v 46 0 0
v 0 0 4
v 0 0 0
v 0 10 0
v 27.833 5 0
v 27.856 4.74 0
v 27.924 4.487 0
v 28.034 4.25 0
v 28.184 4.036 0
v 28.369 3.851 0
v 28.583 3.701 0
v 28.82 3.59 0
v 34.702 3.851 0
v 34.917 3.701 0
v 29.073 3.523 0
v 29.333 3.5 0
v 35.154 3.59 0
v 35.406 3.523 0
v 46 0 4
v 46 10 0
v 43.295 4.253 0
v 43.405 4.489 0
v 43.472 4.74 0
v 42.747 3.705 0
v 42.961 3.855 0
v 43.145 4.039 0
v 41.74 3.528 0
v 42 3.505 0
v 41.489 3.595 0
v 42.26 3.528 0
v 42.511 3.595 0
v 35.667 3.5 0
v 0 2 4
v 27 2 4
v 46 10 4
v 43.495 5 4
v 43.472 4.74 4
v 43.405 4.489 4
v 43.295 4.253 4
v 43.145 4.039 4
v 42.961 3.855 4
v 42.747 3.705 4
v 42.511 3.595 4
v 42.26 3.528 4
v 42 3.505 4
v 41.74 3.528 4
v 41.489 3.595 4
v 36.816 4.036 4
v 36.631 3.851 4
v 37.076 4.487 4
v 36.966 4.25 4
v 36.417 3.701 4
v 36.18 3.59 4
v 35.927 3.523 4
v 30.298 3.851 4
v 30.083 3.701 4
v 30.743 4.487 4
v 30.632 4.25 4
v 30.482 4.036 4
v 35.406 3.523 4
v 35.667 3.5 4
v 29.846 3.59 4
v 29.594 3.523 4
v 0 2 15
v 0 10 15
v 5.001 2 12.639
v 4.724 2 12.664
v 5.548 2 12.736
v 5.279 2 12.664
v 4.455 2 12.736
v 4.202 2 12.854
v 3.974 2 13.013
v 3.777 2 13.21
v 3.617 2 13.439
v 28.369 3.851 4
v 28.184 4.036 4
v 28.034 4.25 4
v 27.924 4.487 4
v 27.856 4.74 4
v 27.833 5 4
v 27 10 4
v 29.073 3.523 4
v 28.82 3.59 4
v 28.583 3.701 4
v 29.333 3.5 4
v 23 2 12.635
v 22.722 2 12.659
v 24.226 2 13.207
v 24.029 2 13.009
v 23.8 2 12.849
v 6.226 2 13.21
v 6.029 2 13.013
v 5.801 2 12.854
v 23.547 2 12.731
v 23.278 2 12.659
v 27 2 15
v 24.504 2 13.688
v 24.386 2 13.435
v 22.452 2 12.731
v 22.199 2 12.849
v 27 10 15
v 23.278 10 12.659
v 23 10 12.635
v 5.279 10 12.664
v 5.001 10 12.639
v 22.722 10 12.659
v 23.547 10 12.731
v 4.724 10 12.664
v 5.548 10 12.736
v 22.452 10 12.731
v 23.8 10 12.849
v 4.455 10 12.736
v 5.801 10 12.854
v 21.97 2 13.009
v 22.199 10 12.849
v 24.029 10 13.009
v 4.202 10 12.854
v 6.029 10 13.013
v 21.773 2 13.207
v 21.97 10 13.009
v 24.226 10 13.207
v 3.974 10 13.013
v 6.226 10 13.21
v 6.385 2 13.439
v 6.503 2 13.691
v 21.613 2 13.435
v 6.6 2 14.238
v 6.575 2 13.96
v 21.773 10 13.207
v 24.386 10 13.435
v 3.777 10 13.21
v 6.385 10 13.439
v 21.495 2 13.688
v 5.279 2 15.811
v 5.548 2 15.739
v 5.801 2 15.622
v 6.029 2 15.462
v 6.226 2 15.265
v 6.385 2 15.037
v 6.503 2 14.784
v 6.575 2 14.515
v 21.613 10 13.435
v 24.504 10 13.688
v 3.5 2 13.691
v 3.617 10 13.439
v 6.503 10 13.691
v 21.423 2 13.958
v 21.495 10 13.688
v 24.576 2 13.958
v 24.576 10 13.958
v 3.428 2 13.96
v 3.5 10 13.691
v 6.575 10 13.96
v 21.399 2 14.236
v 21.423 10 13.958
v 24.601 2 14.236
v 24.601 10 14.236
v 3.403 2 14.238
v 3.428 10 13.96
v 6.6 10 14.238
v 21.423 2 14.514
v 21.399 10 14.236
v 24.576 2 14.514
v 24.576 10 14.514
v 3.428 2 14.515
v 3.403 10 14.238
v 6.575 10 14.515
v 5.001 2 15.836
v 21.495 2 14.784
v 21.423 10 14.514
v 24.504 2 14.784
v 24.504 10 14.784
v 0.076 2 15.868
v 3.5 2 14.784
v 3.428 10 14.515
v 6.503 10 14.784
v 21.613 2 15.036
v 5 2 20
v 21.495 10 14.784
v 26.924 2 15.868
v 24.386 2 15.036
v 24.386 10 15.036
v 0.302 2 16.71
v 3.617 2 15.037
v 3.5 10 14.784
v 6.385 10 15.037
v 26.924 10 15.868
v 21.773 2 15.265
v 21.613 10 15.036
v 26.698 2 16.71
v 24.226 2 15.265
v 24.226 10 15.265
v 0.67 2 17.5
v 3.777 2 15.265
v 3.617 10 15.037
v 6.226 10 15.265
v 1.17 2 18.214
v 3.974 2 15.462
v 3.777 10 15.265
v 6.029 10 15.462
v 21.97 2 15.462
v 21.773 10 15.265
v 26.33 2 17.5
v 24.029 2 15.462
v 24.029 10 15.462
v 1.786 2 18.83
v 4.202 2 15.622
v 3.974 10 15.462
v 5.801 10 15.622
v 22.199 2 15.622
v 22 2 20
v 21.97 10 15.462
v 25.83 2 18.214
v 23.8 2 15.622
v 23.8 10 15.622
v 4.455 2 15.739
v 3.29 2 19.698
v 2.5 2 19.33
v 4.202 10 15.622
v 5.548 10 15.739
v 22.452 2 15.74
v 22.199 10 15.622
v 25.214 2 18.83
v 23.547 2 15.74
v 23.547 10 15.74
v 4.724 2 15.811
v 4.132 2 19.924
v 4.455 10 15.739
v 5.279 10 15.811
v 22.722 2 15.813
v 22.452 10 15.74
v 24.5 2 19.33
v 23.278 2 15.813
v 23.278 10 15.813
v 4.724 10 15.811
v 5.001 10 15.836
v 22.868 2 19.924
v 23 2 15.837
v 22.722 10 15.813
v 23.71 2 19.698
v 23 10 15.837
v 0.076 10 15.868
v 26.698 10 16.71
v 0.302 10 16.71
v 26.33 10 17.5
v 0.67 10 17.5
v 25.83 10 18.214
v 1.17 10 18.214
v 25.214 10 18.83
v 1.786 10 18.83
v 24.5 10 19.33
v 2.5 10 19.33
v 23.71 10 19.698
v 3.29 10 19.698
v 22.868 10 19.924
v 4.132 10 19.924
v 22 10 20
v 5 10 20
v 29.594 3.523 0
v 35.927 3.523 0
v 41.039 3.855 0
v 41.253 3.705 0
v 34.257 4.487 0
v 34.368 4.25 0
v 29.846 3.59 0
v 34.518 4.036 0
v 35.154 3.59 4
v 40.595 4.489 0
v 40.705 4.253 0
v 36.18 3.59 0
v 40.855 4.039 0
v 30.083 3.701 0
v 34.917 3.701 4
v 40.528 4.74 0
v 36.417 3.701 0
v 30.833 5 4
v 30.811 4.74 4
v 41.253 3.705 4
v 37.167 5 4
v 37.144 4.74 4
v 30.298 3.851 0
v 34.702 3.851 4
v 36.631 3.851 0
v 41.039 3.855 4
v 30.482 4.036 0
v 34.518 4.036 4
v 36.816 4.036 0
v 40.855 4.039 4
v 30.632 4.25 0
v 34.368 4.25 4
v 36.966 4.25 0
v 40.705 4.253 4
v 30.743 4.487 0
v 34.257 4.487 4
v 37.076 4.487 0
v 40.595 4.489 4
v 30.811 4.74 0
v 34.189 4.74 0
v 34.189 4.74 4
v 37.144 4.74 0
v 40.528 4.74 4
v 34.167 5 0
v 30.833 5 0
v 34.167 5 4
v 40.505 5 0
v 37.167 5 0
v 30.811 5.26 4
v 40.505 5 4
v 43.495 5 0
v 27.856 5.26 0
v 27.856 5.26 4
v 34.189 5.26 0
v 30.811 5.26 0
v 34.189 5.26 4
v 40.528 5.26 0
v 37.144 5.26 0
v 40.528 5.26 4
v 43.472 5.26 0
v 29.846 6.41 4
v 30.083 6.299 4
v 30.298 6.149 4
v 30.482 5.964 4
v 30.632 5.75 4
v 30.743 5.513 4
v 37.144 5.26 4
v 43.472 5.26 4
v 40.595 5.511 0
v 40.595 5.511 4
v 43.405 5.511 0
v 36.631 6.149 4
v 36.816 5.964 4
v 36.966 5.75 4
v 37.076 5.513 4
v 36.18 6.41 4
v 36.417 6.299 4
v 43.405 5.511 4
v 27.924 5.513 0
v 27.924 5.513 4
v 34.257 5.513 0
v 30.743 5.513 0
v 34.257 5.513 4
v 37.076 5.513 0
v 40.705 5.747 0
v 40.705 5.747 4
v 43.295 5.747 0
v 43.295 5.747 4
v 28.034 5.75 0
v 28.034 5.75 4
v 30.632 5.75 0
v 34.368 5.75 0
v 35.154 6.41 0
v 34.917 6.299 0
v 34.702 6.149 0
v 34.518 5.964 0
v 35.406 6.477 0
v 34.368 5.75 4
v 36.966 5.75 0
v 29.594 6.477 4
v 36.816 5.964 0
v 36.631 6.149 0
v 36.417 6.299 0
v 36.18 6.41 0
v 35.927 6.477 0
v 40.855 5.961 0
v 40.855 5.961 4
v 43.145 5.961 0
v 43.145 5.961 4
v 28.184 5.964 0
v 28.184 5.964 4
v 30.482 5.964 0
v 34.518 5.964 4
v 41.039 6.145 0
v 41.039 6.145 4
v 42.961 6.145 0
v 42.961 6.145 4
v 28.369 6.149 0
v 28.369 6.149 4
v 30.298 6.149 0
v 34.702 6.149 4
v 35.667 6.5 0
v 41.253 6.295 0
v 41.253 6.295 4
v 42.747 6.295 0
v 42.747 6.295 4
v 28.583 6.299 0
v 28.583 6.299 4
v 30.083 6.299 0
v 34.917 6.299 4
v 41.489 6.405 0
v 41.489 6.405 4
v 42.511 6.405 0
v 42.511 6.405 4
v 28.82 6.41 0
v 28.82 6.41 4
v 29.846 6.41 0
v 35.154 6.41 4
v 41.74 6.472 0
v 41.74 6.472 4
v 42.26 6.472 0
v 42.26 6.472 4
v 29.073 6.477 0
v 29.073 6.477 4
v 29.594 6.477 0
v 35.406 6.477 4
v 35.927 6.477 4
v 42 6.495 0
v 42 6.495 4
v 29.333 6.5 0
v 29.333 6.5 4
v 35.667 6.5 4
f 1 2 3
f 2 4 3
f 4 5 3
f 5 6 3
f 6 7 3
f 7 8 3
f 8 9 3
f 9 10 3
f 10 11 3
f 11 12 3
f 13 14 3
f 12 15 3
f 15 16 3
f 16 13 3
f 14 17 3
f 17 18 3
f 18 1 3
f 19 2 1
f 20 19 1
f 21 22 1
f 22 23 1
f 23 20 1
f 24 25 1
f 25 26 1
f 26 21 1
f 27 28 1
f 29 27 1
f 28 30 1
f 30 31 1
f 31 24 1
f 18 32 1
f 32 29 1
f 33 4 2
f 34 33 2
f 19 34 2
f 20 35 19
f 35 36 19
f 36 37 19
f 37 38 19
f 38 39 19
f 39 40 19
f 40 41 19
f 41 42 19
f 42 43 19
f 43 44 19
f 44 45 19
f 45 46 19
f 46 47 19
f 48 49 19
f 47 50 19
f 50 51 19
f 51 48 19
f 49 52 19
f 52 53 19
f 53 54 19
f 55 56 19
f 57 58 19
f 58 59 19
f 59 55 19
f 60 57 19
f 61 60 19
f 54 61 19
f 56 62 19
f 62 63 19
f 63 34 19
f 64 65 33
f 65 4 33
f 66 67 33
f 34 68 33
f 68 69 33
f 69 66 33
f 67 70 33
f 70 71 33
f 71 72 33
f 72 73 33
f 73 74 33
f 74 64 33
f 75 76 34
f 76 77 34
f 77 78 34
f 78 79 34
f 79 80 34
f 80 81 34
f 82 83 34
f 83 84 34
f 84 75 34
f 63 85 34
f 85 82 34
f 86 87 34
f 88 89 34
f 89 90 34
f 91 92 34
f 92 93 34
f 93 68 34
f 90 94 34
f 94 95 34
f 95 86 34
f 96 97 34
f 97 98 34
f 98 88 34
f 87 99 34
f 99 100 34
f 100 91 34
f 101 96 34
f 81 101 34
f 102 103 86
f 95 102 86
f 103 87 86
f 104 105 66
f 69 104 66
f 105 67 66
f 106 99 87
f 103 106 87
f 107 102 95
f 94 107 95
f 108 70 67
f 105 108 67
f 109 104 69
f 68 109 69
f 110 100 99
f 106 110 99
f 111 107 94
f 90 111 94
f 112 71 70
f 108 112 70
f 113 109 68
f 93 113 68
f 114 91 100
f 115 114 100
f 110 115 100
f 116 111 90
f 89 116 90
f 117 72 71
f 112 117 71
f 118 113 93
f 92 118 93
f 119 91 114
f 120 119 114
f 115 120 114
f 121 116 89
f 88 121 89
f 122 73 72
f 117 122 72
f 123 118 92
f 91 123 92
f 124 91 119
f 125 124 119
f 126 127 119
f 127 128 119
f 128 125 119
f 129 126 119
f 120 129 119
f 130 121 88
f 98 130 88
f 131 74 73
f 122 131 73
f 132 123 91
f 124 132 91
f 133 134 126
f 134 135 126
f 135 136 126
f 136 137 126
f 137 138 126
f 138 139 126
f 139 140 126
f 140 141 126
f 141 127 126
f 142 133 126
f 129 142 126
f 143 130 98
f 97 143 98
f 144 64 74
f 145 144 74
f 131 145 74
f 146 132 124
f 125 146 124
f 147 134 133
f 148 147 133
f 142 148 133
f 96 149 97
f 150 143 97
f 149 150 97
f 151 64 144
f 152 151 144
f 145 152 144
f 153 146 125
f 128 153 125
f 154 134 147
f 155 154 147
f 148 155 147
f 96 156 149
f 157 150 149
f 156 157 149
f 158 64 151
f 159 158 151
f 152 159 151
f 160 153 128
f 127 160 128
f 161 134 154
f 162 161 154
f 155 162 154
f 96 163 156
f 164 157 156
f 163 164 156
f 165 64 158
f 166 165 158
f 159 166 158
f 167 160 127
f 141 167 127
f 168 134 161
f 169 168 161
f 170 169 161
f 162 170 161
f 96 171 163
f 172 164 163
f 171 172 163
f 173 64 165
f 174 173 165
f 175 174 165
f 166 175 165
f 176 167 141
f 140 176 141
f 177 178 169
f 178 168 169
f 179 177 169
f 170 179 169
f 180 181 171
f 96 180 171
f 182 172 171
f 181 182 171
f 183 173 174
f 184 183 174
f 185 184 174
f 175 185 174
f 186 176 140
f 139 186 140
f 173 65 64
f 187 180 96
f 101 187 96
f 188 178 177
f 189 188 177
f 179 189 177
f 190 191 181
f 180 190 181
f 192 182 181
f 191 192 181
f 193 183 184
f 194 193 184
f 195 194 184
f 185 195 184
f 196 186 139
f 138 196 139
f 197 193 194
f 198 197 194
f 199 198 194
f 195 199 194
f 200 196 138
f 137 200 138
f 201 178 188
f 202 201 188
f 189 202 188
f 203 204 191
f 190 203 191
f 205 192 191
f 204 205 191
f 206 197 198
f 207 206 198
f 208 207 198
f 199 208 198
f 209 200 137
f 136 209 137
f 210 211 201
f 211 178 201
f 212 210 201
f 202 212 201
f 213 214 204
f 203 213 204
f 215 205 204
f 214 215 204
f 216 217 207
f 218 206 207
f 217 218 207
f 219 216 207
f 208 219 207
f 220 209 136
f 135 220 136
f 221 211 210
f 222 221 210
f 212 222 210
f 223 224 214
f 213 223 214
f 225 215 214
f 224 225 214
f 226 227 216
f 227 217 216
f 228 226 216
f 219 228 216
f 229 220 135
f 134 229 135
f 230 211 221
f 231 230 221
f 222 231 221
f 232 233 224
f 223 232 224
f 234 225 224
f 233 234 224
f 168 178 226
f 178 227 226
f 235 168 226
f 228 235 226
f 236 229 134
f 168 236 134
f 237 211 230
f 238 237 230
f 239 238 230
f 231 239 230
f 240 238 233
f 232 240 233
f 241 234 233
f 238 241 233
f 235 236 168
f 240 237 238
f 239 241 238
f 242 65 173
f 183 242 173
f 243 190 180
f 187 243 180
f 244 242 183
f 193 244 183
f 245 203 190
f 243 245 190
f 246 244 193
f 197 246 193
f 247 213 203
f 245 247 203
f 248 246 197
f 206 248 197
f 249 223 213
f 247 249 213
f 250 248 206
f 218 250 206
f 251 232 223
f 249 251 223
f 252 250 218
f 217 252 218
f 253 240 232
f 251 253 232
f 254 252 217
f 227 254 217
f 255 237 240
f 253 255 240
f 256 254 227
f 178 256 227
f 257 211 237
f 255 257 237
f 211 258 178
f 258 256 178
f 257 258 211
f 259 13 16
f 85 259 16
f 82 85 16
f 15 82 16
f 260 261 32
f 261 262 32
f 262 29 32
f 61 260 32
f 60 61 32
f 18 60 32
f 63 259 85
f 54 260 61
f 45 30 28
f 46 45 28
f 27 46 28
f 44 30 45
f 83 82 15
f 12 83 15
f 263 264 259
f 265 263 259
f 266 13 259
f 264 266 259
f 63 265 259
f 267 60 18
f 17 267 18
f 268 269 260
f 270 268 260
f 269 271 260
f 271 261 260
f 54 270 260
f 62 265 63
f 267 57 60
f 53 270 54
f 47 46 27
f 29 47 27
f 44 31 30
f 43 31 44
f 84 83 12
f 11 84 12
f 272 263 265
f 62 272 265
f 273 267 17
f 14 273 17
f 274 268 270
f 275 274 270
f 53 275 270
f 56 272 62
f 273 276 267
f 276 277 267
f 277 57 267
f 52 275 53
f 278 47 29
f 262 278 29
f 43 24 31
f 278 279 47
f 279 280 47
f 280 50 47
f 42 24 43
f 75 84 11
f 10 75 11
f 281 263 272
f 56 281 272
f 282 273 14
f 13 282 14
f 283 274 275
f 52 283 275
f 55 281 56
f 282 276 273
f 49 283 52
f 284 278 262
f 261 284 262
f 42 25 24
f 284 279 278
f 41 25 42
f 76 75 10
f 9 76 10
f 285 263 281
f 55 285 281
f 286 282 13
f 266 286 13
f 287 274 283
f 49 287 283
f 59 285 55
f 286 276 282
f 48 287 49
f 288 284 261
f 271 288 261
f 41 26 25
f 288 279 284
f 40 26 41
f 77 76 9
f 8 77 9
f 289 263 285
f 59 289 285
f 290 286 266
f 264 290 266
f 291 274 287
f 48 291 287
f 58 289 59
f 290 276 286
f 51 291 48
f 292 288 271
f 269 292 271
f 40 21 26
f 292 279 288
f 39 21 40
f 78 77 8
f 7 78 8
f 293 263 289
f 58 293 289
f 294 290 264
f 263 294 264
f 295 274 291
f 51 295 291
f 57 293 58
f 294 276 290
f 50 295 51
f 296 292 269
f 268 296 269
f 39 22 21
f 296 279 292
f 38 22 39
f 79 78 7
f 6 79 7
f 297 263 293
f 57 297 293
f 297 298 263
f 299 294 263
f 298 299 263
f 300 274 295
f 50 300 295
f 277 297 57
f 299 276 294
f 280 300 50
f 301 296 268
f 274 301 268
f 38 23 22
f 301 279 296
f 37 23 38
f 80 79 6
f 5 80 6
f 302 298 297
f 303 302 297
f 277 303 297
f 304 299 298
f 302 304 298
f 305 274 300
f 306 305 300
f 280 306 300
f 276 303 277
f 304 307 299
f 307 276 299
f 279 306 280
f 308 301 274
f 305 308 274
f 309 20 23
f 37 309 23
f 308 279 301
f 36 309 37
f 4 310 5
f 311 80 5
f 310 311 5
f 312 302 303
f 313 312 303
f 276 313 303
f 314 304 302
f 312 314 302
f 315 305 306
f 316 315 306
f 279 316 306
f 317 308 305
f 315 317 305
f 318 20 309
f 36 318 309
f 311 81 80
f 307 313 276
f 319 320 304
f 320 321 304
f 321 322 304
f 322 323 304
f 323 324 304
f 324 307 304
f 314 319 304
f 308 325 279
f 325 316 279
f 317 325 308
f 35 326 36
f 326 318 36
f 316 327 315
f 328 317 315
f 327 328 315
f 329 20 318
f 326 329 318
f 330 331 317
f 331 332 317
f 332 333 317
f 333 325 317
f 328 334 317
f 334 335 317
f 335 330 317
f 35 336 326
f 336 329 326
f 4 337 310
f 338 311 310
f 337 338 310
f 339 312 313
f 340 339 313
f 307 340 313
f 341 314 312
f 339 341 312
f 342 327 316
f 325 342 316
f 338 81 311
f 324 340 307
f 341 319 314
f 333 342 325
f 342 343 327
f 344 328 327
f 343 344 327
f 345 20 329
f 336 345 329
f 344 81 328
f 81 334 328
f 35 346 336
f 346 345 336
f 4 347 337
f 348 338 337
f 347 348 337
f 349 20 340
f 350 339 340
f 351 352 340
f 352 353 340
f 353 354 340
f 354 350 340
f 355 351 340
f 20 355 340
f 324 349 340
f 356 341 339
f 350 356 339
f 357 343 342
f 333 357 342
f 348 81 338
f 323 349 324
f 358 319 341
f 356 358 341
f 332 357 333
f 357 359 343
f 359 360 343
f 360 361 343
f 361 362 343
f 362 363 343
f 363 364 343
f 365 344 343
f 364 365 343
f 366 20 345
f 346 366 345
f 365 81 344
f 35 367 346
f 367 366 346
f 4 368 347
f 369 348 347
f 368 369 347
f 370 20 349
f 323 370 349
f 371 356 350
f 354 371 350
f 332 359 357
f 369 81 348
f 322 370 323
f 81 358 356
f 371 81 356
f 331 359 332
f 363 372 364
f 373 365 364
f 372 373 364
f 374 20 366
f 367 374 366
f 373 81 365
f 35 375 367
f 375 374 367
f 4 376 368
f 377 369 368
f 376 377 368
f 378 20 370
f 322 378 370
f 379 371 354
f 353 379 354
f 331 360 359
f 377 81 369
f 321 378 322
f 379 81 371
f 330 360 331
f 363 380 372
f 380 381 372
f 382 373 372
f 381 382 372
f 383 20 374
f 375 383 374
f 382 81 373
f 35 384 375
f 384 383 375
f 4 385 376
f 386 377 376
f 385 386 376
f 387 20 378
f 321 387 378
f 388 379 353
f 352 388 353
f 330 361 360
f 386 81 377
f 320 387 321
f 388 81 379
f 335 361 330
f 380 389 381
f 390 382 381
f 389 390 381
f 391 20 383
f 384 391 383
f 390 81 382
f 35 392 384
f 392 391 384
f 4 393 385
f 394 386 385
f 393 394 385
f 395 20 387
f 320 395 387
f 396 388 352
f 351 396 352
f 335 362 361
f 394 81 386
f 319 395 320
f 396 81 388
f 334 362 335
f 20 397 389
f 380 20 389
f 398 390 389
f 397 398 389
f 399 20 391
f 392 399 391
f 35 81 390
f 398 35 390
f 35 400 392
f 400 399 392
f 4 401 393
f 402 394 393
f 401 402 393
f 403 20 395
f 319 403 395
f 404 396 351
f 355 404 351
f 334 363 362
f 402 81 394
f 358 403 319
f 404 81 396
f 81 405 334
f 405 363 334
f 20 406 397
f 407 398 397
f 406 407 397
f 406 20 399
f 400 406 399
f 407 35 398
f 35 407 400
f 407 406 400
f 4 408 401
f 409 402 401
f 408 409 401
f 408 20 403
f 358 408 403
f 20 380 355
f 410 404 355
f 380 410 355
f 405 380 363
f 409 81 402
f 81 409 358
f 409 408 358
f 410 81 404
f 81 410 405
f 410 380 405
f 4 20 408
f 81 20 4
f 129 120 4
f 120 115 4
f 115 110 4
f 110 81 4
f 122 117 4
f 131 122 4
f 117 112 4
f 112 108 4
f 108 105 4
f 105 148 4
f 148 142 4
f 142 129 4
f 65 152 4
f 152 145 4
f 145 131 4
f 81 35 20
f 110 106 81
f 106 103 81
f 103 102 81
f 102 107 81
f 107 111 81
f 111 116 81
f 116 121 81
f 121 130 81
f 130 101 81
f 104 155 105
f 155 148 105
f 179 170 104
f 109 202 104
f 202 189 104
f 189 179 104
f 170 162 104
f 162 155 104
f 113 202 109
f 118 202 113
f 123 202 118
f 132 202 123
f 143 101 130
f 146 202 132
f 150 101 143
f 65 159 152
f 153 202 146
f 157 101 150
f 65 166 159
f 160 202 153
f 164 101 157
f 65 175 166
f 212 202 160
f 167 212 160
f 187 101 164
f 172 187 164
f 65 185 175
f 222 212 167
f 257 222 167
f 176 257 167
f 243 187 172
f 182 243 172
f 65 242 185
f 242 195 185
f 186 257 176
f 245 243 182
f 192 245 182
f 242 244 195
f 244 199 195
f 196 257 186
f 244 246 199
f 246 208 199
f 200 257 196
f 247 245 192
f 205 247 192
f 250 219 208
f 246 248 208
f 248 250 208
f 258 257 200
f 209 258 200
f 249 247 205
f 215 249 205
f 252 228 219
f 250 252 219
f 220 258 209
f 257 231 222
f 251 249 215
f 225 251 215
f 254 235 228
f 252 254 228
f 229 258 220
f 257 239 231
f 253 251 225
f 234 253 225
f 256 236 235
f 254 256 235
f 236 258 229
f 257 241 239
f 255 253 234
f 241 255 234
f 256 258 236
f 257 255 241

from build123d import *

# Parameters (mm, degrees)
SKETCH1_W           = 46
SKETCH1_H           = 10
BOSS_EXTRUDE1_DEPTH = 4
SKETCH4_W           = 27
SKETCH4_H           = 8
BOSS_EXTRUDE2_DEPTH = 16
SKETCH5_R           = 1.600993429
SKETCH5_R_2         = 1.598160281
CUT_EXTRUDE2_DEPTH  = 16
SKETCH6_R           = 1.494820838
SKETCH6_R_2         = 1.5
CUT_EXTRUDE3_DEPTH  = 16
FILLET1_R           = 5


with BuildPart() as part:
    # Sketch1 → Boss-Extrude1 (new body)
    with BuildSketch(Plane.XY):
        with Locations((23, 5)):
            Rectangle(SKETCH1_W, SKETCH1_H)
    extrude(amount=BOSS_EXTRUDE1_DEPTH)

    # Sketch4 → Boss-Extrude2 (add)
    with BuildSketch(Plane.XY.offset(4)):
        with Locations((13.5, 6)):
            Rectangle(SKETCH4_W, SKETCH4_H)
    extrude(amount=BOSS_EXTRUDE2_DEPTH)

    # Sketch5 → Cut-Extrude2 (cut)
    with BuildSketch(Plane.XZ.offset(-2)):
        with Locations((22.999560123, 14.235930167)):
            Circle(SKETCH5_R)
        with Locations((5.001441553, 14.237615424)):
            Circle(SKETCH5_R_2)
    extrude(amount=-CUT_EXTRUDE2_DEPTH, mode=Mode.SUBTRACT)

    # Sketch6 → Cut-Extrude3 (cut)
    with BuildSketch(Plane(origin=(0, 0, 0), x_dir=(-1, 0, 0), z_dir=(0, 0, -1))):
        with Locations((-42, 5)):
            Circle(SKETCH6_R)
        with Locations((-29.333333333, 5)):
            Circle(SKETCH6_R_2)
        with Locations((-35.666666667, 5)):
            Circle(SKETCH6_R_2)
    extrude(amount=-CUT_EXTRUDE3_DEPTH, mode=Mode.SUBTRACT)

    # Fillet1
    fillet1_edges = [part.edges().sort_by_distance(p)[0] for p in [
        (0, 6, 20),
        (27, 6, 20),
    ]]
    fillet(fillet1_edges, radius=FILLET1_R)


solid = part.part
